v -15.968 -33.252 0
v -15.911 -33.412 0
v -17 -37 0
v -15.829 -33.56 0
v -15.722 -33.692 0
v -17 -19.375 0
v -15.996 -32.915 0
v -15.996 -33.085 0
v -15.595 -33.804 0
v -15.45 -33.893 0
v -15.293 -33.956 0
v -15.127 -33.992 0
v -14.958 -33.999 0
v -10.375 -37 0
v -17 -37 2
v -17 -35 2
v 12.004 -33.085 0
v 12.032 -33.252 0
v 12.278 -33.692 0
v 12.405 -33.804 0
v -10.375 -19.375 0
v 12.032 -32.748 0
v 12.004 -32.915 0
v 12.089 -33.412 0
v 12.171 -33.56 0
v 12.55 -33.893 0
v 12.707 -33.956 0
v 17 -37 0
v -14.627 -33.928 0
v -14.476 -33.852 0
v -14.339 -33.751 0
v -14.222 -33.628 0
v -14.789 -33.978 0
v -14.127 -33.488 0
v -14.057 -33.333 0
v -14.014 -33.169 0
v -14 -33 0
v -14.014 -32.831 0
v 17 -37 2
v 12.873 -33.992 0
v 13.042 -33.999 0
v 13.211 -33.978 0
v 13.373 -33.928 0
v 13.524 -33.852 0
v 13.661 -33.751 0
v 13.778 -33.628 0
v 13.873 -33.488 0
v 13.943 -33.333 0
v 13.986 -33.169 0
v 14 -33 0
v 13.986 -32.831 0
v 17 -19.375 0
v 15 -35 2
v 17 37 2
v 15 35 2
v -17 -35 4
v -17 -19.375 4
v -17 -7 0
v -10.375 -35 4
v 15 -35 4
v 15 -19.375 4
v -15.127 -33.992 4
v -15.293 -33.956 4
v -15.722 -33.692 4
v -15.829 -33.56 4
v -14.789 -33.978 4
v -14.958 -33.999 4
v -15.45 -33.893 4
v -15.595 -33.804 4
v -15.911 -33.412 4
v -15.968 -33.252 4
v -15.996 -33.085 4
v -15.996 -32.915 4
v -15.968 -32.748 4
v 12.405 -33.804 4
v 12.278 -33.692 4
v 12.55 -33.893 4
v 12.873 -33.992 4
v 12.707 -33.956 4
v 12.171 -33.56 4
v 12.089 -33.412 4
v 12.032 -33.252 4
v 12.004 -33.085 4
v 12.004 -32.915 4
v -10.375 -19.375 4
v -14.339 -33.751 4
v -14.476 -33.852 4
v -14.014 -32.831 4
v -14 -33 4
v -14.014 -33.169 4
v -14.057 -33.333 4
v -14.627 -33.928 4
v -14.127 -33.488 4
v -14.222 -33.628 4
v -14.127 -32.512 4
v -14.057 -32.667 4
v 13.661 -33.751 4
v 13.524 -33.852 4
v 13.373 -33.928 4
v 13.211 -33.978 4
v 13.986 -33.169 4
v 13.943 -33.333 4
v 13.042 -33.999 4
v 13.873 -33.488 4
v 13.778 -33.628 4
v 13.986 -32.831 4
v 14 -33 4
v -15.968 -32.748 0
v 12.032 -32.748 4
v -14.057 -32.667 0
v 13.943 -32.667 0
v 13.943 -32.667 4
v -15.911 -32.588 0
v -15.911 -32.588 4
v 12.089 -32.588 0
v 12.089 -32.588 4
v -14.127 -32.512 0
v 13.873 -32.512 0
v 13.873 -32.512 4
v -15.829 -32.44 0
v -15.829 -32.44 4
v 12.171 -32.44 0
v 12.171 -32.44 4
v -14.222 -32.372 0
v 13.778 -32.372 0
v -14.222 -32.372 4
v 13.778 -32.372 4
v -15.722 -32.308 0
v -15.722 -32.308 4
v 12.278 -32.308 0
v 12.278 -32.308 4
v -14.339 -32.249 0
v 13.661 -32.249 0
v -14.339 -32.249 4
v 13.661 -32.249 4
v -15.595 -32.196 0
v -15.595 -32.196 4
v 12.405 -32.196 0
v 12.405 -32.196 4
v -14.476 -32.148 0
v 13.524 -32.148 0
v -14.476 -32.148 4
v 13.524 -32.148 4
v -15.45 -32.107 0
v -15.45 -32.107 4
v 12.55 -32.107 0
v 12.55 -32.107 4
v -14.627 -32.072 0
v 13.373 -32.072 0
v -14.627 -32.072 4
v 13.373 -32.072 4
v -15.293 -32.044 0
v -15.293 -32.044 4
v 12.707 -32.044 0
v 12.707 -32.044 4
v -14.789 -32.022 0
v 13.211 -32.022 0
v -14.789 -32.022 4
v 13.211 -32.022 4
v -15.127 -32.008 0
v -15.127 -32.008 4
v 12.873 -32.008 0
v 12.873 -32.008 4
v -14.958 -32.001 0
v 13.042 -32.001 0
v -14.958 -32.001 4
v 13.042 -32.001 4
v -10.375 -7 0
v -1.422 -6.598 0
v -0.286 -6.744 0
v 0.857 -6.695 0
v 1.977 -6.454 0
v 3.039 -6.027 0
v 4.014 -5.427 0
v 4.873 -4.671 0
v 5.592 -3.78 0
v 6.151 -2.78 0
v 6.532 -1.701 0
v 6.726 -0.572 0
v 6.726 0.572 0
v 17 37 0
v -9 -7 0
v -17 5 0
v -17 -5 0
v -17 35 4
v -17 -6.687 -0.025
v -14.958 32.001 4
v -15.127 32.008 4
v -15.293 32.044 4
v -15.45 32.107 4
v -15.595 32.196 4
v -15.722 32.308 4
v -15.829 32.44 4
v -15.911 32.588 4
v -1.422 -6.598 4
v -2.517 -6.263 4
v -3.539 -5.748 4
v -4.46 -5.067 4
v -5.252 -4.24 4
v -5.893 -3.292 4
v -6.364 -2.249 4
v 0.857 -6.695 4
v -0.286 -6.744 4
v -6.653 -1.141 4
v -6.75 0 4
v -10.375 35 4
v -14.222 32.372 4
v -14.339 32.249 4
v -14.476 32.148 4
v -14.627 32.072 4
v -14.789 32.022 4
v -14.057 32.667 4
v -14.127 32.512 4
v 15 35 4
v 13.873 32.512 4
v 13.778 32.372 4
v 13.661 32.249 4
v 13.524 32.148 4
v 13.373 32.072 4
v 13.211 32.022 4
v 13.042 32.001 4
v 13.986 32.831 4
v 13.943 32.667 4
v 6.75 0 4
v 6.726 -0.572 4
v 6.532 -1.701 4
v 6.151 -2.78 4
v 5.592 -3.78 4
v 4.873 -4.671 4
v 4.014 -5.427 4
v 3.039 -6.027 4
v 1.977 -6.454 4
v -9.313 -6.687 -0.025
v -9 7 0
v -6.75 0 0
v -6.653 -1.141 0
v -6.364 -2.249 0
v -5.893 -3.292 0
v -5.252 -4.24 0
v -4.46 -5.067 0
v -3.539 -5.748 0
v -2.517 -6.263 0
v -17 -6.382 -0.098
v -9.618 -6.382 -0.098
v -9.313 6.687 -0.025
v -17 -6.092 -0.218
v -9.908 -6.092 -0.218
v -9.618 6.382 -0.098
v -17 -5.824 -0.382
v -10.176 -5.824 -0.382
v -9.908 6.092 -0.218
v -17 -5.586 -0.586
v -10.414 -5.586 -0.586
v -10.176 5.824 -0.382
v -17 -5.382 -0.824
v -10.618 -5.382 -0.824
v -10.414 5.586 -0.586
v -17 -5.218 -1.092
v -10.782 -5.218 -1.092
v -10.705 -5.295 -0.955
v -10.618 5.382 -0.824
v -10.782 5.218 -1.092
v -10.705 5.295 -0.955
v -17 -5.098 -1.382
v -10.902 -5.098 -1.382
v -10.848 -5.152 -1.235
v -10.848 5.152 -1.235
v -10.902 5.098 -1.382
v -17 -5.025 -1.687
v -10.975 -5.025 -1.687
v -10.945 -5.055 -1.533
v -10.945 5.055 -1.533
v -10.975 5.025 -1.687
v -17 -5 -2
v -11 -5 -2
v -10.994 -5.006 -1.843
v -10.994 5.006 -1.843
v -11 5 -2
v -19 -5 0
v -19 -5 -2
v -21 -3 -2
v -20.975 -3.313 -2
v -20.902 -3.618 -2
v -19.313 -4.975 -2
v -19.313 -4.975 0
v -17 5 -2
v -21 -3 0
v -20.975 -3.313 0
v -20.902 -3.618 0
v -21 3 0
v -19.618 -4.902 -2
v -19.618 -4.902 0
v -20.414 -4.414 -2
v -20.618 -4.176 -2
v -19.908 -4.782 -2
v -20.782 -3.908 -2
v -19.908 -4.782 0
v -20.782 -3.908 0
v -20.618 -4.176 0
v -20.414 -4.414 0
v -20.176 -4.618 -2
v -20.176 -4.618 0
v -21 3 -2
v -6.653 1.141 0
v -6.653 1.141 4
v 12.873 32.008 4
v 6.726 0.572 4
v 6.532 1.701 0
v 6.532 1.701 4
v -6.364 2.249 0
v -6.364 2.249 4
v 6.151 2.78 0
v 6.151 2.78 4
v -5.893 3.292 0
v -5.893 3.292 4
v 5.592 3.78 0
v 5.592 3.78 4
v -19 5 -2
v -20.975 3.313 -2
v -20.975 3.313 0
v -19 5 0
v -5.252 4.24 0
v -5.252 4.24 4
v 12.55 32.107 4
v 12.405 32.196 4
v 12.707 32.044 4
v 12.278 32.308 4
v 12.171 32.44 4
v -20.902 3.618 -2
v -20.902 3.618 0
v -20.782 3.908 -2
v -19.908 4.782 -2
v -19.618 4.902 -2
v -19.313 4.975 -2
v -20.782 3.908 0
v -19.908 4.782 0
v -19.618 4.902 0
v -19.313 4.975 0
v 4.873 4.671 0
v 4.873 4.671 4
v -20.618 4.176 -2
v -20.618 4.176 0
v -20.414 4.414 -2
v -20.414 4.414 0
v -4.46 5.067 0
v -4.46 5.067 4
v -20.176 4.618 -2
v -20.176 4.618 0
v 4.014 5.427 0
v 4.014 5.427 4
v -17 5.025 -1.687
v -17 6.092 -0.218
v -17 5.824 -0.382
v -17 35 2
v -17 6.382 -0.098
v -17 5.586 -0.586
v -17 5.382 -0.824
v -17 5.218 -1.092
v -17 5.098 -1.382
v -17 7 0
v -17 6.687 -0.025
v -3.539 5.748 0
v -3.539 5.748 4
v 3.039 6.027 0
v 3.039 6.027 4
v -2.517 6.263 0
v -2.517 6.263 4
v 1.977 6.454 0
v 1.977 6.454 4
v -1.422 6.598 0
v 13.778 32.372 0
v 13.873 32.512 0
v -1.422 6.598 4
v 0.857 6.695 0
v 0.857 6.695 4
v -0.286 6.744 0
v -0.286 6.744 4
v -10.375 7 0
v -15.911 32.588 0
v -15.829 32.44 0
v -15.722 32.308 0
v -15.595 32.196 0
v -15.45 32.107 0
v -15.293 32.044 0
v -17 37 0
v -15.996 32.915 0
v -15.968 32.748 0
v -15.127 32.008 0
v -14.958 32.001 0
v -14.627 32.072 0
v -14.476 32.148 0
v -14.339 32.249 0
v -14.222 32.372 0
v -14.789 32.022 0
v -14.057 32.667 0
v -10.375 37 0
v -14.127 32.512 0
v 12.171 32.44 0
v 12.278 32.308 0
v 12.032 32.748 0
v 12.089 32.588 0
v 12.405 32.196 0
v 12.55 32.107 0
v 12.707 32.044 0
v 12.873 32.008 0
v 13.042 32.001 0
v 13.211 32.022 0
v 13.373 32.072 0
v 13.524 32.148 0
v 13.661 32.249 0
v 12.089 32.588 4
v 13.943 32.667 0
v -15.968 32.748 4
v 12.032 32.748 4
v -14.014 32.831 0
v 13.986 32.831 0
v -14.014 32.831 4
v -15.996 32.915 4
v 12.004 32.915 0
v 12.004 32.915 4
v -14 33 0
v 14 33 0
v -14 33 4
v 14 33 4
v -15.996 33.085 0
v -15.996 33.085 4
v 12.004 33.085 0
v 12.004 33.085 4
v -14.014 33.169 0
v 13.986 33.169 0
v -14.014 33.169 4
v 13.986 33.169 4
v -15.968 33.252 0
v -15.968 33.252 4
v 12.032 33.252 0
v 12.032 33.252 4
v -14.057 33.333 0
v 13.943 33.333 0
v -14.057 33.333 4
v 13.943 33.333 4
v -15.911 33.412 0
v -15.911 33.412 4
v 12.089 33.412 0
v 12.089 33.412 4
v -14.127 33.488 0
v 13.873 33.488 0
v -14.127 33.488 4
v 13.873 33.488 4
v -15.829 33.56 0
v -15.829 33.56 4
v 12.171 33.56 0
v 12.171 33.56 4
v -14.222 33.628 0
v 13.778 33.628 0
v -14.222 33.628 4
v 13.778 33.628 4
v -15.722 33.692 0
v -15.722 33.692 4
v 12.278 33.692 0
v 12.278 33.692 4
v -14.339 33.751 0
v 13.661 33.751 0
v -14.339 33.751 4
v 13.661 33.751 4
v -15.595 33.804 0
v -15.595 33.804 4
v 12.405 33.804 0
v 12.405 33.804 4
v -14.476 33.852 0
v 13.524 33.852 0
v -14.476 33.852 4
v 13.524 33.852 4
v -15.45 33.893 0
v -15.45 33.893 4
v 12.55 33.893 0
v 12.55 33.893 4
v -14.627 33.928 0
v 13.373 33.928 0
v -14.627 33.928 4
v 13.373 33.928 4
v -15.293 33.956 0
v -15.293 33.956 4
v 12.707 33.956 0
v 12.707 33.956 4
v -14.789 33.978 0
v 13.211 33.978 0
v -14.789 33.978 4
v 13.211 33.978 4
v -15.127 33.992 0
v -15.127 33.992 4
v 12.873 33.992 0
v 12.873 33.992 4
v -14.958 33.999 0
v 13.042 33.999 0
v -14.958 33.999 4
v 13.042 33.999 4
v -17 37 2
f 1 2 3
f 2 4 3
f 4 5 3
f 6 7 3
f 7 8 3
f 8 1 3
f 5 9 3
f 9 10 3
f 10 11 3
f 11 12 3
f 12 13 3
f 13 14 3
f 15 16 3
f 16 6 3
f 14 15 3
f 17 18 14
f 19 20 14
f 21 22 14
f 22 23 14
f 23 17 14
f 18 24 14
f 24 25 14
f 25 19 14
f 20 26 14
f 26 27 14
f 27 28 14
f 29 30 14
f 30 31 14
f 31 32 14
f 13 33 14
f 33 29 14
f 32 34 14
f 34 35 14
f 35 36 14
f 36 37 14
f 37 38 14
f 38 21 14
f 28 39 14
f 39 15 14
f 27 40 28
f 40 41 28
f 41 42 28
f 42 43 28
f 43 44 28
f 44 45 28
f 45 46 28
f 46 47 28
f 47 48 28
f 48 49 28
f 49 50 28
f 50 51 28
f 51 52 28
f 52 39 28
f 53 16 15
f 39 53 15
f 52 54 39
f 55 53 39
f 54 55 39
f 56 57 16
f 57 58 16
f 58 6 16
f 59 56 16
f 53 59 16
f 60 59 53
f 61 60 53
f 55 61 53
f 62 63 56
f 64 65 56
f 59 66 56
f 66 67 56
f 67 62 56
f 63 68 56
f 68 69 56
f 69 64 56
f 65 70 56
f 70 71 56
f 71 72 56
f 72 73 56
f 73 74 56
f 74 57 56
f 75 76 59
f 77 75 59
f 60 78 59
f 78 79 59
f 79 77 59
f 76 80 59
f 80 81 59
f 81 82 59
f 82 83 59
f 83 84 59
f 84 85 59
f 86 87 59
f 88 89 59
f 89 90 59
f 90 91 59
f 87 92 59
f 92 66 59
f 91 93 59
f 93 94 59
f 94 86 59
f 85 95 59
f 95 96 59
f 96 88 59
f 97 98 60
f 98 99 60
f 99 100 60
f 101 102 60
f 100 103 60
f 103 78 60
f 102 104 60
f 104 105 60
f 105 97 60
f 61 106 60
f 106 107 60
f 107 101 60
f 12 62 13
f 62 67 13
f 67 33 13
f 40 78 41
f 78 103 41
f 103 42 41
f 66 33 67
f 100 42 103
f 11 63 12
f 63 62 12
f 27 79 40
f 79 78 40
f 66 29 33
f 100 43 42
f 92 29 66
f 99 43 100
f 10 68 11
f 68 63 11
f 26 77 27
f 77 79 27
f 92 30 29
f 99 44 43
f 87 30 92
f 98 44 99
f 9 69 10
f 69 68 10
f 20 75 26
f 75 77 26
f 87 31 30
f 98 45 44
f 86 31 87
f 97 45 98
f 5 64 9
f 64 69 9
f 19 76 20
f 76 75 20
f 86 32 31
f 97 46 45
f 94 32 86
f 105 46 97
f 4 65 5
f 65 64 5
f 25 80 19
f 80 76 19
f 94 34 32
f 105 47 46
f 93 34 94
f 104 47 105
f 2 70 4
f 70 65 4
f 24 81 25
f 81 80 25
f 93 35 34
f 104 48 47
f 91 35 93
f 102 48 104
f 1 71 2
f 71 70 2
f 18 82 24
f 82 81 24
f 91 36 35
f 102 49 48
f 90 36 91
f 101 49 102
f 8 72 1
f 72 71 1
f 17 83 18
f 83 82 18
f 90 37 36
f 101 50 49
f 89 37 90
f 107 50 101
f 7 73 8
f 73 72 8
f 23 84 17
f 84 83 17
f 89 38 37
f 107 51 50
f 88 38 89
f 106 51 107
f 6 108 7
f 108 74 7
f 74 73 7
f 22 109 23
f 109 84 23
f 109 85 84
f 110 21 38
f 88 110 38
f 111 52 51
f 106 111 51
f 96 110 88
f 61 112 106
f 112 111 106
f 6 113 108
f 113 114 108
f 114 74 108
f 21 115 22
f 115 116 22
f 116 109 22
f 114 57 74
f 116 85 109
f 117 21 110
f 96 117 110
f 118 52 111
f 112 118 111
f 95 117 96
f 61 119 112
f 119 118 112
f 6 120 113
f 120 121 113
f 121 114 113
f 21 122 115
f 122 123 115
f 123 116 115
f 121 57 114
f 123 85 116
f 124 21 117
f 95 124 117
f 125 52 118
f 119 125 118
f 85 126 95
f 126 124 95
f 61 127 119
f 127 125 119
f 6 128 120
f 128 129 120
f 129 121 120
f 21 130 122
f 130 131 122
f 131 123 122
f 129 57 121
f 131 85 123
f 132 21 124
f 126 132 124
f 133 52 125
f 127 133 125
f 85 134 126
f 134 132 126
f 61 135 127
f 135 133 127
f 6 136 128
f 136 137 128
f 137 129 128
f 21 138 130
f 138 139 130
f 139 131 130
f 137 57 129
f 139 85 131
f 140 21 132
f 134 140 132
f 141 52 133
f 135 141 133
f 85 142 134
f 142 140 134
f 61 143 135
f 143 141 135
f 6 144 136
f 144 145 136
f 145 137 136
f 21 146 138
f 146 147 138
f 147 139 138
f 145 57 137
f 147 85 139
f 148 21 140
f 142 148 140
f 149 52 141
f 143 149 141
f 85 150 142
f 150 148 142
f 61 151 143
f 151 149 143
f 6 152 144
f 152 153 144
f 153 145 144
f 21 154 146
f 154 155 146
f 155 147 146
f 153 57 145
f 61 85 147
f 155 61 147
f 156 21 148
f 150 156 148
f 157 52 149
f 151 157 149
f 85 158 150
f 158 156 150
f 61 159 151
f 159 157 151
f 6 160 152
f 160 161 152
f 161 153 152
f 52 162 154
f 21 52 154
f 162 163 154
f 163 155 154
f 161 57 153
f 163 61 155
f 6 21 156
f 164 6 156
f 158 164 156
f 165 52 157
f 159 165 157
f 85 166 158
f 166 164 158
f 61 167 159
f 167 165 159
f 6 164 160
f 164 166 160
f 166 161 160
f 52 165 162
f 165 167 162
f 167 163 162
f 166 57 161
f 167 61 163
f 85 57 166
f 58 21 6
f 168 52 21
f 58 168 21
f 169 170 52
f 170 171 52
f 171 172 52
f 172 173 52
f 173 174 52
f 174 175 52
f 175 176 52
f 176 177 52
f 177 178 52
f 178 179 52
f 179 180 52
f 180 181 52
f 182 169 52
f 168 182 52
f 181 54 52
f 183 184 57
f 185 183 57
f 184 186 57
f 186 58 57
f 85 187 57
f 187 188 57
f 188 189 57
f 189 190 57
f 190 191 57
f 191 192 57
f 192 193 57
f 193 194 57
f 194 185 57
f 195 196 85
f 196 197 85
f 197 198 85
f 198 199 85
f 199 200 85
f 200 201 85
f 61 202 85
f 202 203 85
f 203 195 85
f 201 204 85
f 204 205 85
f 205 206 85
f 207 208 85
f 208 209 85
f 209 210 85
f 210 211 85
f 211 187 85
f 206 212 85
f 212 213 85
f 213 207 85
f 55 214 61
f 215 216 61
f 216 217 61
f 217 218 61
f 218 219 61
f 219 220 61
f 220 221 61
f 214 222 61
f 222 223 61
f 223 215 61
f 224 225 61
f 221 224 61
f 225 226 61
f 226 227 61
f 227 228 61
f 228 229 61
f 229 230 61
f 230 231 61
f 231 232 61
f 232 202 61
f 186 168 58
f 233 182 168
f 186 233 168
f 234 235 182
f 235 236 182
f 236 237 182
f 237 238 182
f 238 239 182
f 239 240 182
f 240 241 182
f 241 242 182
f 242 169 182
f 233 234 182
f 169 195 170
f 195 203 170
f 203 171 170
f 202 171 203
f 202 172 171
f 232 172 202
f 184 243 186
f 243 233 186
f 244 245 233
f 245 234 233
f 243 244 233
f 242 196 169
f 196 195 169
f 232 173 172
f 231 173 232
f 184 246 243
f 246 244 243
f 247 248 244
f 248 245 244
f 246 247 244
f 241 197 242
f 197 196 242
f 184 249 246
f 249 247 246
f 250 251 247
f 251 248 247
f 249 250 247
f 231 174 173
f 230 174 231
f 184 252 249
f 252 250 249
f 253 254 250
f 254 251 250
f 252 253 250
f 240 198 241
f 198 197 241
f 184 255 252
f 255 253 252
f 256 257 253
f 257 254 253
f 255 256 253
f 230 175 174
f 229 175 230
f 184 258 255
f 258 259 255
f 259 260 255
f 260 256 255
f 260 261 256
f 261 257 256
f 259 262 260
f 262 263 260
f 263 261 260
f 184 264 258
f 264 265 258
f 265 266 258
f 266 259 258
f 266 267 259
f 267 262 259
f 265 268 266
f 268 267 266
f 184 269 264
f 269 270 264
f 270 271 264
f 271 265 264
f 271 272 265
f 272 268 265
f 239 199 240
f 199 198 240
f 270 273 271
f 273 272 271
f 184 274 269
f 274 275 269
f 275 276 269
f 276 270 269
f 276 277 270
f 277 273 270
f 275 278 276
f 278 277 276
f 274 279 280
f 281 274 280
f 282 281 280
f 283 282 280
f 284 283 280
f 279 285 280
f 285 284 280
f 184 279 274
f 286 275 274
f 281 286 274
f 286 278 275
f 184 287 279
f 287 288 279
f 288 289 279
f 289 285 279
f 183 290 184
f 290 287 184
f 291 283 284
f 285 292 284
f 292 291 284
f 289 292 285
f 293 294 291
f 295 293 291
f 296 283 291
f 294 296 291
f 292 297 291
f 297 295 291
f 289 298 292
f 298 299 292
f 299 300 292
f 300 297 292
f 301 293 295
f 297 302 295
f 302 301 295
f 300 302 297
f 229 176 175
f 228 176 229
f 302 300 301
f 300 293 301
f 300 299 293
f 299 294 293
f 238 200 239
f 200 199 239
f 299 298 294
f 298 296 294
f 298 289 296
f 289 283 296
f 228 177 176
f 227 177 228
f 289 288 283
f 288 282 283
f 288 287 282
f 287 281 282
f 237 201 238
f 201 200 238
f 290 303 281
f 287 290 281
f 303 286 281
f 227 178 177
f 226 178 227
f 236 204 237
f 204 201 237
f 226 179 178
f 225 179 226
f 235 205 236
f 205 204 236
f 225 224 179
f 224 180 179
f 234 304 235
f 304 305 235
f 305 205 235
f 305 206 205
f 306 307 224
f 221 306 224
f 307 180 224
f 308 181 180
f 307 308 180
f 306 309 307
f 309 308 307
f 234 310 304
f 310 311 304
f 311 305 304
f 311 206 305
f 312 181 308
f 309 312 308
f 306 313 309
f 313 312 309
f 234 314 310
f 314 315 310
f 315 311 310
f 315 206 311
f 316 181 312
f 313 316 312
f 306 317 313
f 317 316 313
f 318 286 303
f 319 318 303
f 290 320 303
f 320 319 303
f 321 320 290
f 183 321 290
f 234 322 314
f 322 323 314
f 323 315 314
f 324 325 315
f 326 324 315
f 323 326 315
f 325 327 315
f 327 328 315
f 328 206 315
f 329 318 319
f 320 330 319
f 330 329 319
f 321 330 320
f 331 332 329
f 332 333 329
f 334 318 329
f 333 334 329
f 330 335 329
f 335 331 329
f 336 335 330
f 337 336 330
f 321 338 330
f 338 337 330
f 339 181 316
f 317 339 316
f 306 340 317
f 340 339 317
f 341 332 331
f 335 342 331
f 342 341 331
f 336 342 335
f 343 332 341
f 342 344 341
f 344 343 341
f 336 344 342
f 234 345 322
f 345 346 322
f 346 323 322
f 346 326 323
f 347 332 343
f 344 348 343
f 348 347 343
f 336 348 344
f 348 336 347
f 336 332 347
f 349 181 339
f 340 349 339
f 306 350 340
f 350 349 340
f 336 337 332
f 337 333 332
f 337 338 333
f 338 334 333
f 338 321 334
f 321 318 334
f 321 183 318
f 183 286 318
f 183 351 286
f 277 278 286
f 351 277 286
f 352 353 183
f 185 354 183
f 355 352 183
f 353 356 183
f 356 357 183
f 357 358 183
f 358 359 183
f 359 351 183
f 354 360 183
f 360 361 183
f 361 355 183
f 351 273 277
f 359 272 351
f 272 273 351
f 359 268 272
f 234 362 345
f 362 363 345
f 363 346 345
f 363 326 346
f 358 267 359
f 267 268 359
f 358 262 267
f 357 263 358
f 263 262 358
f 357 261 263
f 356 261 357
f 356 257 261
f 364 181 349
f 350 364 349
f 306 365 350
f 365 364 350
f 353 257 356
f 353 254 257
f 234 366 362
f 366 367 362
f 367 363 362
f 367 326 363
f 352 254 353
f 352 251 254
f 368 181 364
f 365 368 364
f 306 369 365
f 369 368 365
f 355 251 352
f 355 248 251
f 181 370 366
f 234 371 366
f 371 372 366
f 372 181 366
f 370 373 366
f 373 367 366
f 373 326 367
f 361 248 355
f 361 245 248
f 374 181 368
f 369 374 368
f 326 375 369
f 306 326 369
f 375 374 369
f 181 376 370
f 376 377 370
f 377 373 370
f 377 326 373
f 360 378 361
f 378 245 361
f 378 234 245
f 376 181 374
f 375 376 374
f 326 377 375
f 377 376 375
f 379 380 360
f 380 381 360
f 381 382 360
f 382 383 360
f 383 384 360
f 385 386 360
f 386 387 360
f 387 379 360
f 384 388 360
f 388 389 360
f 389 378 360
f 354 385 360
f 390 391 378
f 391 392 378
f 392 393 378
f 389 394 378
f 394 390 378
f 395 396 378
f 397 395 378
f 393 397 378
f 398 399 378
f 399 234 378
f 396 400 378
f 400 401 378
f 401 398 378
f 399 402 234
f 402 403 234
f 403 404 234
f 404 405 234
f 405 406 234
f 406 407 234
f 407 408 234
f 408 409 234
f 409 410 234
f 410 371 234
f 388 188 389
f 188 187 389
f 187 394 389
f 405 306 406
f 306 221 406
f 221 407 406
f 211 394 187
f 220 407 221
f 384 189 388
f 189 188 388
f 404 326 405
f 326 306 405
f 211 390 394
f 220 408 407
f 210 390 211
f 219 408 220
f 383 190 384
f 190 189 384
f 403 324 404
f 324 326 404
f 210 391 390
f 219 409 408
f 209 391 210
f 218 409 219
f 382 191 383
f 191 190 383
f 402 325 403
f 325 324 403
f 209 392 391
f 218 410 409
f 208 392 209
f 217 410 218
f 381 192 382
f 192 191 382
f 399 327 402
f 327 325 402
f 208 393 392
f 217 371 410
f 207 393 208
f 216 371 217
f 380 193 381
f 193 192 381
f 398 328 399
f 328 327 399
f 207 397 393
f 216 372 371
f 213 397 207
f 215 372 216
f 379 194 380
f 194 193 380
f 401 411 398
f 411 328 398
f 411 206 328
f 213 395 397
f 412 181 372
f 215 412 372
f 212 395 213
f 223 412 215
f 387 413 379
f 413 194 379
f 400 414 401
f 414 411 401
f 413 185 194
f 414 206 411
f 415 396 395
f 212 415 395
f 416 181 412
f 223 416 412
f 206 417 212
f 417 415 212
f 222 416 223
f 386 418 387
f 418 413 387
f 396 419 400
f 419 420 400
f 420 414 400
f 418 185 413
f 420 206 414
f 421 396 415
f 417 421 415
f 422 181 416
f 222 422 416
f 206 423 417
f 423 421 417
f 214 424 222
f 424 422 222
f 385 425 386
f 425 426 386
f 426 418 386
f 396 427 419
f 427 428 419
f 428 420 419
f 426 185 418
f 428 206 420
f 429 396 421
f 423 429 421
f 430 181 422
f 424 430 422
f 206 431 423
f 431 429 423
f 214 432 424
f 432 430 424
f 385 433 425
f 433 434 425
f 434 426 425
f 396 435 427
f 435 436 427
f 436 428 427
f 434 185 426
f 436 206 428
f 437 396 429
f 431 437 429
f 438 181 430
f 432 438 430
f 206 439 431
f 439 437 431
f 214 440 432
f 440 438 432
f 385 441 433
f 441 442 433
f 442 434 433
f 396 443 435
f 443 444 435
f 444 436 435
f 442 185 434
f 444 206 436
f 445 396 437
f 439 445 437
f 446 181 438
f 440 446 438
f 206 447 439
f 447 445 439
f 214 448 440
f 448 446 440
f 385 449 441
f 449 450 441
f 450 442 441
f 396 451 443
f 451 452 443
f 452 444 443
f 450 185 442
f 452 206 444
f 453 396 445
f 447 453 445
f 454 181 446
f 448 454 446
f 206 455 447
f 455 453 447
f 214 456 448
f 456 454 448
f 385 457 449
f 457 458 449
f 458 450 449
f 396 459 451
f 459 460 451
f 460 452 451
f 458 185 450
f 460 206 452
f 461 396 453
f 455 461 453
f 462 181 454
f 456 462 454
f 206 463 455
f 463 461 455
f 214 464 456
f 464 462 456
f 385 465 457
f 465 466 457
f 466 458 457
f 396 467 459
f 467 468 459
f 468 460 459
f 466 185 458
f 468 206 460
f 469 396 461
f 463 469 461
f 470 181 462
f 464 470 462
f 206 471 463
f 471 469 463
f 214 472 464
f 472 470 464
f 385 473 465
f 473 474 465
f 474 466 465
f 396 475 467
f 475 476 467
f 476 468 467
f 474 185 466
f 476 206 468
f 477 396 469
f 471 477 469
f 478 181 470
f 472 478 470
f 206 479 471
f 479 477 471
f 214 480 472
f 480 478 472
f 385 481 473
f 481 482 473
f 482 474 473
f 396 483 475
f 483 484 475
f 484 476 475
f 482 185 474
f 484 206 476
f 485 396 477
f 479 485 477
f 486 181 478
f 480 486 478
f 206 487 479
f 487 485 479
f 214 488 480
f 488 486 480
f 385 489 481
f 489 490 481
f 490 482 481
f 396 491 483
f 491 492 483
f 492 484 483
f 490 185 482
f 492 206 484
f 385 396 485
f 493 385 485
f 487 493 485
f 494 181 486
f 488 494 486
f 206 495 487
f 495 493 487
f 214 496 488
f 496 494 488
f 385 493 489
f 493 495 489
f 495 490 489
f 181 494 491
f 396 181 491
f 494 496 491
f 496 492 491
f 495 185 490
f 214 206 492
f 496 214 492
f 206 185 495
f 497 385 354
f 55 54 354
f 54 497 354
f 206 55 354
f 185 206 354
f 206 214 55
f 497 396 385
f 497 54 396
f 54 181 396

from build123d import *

# Parameters (mm, degrees)
ESQUISSE1_W             = 34
ESQUISSE1_H             = 74
BOSS_EXTRU_1_DEPTH      = 2
ESQUISSE2_W             = 32
ESQUISSE2_H             = 70
BOSS_EXTRU_2_DEPTH      = 2
SKETCH1_R               = 6.75
CUT_EXTRUDE1_DEPTH      = 41.914545091
ESQUISSE3_R             = 1
ENL_V_MAT_EXTRU_1_DEPTH = 41.914545091
ESQUISSE4_W             = 10
ESQUISSE4_H             = 10
BOSS_EXTRU_3_DEPTH      = 2
CONG_1_R                = 2


with BuildPart() as part:
    # Esquisse1 → Boss.-Extru.1 (new body)
    with BuildSketch(Plane.XY):
        Rectangle(ESQUISSE1_W, ESQUISSE1_H)
    extrude(amount=BOSS_EXTRU_1_DEPTH)

    # Esquisse2 → Boss.-Extru.2 (add)
    with BuildSketch(Plane.XY.offset(2)):
        with Locations((-1, 0)):
            Rectangle(ESQUISSE2_W, ESQUISSE2_H)
    extrude(amount=BOSS_EXTRU_2_DEPTH)

    # Sketch1 → Cut-Extrude1 (cut, through all)
    with BuildSketch(Plane(origin=(0, 0, 0), x_dir=(-1, 0, 0), z_dir=(0, 0, -1))):
        Circle(SKETCH1_R)
    extrude(amount=-CUT_EXTRUDE1_DEPTH, mode=Mode.SUBTRACT)

    # Esquisse3 → Enlèv. mat.-Extru.1 (cut, through all)
    with BuildSketch(Plane.XY.offset(4)):
        with Locations((-15, 33)):
            Circle(ESQUISSE3_R)
        with Locations((13, 33)):
            Circle(ESQUISSE3_R)
        with Locations((13, -33)):
            Circle(ESQUISSE3_R)
        with Locations((-15, -33)):
            Circle(ESQUISSE3_R)
    extrude(amount=-ENL_V_MAT_EXTRU_1_DEPTH, mode=Mode.SUBTRACT)

    # Esquisse4 → Boss.-Extru.3 (add)
    with BuildSketch(Plane(origin=(0, 0, 0), x_dir=(-1, 0, 0), z_dir=(0, 0, -1))):
        with Locations((16, 0)):
            Rectangle(ESQUISSE4_W, ESQUISSE4_H)
    extrude(amount=BOSS_EXTRU_3_DEPTH)

    # Congé1
    cong_1_edges = [part.edges().sort_by_distance(p)[0] for p in [
        (-14, -5, 0),
        (-11, 0, 0),
        (-14, 5, 0),
        (-21, 5, -1),
        (-21, -5, -1),
    ]]
    fillet(cong_1_edges, radius=CONG_1_R - 0.0001)  # a hair under: the kernel refuses the full size


solid = part.part
